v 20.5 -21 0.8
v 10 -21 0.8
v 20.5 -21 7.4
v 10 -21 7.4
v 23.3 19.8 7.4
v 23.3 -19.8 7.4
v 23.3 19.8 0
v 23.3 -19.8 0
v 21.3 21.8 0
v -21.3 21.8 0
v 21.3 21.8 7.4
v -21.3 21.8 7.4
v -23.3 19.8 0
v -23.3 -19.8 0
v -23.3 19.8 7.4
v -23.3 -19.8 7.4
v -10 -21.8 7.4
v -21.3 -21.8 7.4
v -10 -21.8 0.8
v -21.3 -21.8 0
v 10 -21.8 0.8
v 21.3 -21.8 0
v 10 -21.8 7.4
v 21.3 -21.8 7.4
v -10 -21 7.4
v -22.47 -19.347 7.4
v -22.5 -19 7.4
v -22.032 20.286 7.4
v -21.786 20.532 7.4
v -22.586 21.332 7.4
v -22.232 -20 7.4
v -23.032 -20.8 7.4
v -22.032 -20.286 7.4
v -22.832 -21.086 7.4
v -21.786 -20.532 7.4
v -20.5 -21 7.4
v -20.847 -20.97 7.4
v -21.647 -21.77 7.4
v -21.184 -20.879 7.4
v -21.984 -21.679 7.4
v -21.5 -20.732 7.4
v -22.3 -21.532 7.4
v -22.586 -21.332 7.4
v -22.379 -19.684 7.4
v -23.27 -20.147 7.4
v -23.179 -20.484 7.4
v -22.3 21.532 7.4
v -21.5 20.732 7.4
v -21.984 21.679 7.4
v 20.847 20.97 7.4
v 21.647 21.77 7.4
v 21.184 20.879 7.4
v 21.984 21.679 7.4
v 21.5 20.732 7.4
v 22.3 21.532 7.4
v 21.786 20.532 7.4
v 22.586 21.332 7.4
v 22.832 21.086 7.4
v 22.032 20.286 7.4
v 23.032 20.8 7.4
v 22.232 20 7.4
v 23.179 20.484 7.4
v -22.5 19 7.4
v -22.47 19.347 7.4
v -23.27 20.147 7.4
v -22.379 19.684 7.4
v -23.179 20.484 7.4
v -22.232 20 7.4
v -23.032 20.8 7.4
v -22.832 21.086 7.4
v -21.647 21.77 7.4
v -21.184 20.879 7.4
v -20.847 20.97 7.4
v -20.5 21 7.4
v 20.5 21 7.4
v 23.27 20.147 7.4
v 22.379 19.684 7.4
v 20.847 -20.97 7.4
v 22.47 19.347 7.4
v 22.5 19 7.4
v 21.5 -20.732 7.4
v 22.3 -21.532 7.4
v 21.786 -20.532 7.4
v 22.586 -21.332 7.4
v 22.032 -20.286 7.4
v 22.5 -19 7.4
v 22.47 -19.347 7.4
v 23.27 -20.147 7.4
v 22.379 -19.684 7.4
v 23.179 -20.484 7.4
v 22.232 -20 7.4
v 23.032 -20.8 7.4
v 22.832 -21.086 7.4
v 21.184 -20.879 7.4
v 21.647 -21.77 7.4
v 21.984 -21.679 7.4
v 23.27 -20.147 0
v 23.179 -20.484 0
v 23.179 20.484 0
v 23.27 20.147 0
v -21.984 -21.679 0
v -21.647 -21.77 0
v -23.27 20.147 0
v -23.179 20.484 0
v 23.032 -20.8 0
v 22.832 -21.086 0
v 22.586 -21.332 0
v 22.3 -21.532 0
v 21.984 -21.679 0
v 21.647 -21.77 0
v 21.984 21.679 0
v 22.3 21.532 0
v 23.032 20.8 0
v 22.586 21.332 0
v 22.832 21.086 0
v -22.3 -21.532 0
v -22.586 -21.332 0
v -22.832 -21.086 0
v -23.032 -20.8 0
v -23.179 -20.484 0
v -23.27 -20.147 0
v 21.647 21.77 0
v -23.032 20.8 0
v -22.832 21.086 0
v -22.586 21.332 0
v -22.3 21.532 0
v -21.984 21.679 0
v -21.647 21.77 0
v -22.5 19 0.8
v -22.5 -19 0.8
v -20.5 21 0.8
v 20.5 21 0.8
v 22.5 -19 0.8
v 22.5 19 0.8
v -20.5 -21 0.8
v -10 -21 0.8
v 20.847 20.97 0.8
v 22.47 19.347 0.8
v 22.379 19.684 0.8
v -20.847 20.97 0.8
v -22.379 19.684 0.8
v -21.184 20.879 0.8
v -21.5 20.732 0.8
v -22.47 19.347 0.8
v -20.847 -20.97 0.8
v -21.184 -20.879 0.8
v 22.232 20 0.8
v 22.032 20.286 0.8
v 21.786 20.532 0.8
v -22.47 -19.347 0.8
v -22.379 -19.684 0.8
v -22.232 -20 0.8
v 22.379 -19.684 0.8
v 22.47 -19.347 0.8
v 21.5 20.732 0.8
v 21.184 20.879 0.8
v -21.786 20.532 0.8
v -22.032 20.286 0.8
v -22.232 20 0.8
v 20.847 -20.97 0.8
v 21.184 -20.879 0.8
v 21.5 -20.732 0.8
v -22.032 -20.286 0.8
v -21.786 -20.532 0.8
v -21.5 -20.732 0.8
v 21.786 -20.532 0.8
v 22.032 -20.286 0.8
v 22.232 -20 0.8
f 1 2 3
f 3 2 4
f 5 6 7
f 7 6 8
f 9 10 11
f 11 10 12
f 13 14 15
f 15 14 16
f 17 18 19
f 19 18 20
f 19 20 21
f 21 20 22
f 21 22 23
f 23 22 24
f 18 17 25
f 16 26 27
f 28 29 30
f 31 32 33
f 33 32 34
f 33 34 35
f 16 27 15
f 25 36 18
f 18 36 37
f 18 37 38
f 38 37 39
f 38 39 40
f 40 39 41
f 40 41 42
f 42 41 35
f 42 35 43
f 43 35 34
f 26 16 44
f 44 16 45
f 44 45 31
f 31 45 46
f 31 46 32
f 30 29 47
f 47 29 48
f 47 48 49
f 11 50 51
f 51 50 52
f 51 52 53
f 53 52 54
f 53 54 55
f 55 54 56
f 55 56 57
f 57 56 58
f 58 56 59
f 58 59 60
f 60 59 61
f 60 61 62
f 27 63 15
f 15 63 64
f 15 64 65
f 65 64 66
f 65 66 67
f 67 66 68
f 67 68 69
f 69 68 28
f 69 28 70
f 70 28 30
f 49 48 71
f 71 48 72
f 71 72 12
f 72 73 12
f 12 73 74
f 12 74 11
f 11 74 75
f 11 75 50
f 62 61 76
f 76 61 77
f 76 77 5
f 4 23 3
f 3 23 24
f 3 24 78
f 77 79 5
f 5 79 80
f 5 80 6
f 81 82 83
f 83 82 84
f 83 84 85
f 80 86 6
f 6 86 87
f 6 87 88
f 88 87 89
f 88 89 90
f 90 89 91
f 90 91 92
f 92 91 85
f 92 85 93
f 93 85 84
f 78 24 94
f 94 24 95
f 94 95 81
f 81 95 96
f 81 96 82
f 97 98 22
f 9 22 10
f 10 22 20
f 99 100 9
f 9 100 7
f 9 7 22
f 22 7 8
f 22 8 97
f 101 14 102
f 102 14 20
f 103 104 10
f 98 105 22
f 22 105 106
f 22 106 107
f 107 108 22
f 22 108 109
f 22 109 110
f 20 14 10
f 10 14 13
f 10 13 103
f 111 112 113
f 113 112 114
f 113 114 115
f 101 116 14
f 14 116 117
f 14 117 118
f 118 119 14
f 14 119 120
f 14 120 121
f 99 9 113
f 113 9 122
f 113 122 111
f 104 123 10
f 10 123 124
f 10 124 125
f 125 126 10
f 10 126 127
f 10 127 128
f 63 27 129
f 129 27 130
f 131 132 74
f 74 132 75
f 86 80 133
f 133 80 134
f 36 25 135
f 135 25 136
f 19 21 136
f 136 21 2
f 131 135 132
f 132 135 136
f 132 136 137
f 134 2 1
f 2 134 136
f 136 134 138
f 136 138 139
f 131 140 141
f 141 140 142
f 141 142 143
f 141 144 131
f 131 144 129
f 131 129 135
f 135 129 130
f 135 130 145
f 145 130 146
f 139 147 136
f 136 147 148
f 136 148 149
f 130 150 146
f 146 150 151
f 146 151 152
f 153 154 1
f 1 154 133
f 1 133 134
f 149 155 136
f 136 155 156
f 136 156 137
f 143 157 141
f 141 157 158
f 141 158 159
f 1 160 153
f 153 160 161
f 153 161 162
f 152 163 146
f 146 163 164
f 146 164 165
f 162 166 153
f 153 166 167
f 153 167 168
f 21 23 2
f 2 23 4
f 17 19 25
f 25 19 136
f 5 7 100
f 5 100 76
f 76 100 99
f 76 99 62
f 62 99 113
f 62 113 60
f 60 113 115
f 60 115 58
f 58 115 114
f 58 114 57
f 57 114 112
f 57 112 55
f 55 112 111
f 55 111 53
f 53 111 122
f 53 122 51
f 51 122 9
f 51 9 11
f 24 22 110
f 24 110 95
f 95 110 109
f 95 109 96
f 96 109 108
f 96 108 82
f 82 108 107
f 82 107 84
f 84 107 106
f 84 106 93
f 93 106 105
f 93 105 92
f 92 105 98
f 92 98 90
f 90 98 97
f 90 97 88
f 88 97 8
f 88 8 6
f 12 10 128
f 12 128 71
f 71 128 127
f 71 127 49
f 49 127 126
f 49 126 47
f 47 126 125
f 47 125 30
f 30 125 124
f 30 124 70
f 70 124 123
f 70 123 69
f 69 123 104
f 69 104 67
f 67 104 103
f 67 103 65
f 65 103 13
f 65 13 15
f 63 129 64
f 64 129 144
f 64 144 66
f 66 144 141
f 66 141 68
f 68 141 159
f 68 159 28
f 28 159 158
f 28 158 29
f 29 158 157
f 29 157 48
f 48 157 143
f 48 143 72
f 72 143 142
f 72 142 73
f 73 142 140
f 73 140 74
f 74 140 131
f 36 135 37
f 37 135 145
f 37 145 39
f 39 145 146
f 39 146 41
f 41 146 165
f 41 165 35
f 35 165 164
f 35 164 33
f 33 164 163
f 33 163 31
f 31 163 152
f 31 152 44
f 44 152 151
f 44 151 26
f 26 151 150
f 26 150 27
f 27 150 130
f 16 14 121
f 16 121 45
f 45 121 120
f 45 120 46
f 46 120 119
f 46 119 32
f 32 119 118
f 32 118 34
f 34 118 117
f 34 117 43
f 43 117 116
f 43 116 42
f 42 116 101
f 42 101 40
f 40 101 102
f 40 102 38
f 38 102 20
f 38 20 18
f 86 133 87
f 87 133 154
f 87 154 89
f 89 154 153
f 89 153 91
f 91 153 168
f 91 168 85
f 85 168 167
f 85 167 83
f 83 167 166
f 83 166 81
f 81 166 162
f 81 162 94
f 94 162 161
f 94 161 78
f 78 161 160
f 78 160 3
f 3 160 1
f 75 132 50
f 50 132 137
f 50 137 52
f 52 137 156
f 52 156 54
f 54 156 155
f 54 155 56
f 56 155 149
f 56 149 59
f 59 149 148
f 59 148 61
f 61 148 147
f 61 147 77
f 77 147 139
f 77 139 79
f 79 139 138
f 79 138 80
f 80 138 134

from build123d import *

# Parameters (mm, degrees)
SKETCH_1_W          = 46.6
SKETCH_1_H          = 43.6
EXTRUDE_1_DEPTH     = 7.4
SKETCH_2_W          = 45
SKETCH_2_H          = 42
CUT_EXTRUDE_1_DEPTH = 6.6
CUT_EXTRUDE_3_REACH = 45.6
SKETCH_3_W          = 20
SKETCH_3_H          = 6.6
FILLET_1_R          = 2


with BuildPart() as part:
    # ｽｹｯﾁ1 → ﾎﾞｽ - 押し出し1 (new body)
    with BuildSketch(Plane.XY):
        Rectangle(SKETCH_1_W, SKETCH_1_H)
    extrude(amount=EXTRUDE_1_DEPTH)

    # ｽｹｯﾁ2 → ｶｯﾄ - 押し出し1 (cut)
    with BuildSketch(Plane.XY.offset(7.4)):
        Rectangle(SKETCH_2_W, SKETCH_2_H)
    extrude(amount=-CUT_EXTRUDE_1_DEPTH, mode=Mode.SUBTRACT)

    # ｽｹｯﾁ3 → ｶｯﾄ - 押し出し3 (cut, up to next)
    with BuildSketch(Plane(origin=(0, -21.8, 0), x_dir=(-1, 0, 0), z_dir=(0, -1, 0)), mode=Mode.PRIVATE) as cut_extrude_3_sk1:
        with Locations((0, -4.1)):
            Rectangle(SKETCH_3_W, SKETCH_3_H)
    cut_extrude_3_tool1 = extrude(cut_extrude_3_sk1.sketch, amount=-CUT_EXTRUDE_3_REACH, mode=Mode.PRIVATE) & part.part
    add(cut_extrude_3_tool1.solids().sort_by_distance((0, -21.8, 4.1))[0], mode=Mode.SUBTRACT)

    # ﾌｨﾚｯﾄ1
    fillet_1_edges = [part.edges().sort_by_distance(p)[0] for p in [
        (-22.5, -21, 4.1),
        (-22.5, 21, 4.1),
        (22.5, 21, 4.1),
        (22.5, -21, 4.1),
        (23.3, -21.8, 3.7),
        (-23.3, -21.8, 3.7),
        (-23.3, 21.8, 3.7),
        (23.3, 21.8, 3.7),
    ]]
    fillet(fillet_1_edges, radius=FILLET_1_R)


solid = part.part
